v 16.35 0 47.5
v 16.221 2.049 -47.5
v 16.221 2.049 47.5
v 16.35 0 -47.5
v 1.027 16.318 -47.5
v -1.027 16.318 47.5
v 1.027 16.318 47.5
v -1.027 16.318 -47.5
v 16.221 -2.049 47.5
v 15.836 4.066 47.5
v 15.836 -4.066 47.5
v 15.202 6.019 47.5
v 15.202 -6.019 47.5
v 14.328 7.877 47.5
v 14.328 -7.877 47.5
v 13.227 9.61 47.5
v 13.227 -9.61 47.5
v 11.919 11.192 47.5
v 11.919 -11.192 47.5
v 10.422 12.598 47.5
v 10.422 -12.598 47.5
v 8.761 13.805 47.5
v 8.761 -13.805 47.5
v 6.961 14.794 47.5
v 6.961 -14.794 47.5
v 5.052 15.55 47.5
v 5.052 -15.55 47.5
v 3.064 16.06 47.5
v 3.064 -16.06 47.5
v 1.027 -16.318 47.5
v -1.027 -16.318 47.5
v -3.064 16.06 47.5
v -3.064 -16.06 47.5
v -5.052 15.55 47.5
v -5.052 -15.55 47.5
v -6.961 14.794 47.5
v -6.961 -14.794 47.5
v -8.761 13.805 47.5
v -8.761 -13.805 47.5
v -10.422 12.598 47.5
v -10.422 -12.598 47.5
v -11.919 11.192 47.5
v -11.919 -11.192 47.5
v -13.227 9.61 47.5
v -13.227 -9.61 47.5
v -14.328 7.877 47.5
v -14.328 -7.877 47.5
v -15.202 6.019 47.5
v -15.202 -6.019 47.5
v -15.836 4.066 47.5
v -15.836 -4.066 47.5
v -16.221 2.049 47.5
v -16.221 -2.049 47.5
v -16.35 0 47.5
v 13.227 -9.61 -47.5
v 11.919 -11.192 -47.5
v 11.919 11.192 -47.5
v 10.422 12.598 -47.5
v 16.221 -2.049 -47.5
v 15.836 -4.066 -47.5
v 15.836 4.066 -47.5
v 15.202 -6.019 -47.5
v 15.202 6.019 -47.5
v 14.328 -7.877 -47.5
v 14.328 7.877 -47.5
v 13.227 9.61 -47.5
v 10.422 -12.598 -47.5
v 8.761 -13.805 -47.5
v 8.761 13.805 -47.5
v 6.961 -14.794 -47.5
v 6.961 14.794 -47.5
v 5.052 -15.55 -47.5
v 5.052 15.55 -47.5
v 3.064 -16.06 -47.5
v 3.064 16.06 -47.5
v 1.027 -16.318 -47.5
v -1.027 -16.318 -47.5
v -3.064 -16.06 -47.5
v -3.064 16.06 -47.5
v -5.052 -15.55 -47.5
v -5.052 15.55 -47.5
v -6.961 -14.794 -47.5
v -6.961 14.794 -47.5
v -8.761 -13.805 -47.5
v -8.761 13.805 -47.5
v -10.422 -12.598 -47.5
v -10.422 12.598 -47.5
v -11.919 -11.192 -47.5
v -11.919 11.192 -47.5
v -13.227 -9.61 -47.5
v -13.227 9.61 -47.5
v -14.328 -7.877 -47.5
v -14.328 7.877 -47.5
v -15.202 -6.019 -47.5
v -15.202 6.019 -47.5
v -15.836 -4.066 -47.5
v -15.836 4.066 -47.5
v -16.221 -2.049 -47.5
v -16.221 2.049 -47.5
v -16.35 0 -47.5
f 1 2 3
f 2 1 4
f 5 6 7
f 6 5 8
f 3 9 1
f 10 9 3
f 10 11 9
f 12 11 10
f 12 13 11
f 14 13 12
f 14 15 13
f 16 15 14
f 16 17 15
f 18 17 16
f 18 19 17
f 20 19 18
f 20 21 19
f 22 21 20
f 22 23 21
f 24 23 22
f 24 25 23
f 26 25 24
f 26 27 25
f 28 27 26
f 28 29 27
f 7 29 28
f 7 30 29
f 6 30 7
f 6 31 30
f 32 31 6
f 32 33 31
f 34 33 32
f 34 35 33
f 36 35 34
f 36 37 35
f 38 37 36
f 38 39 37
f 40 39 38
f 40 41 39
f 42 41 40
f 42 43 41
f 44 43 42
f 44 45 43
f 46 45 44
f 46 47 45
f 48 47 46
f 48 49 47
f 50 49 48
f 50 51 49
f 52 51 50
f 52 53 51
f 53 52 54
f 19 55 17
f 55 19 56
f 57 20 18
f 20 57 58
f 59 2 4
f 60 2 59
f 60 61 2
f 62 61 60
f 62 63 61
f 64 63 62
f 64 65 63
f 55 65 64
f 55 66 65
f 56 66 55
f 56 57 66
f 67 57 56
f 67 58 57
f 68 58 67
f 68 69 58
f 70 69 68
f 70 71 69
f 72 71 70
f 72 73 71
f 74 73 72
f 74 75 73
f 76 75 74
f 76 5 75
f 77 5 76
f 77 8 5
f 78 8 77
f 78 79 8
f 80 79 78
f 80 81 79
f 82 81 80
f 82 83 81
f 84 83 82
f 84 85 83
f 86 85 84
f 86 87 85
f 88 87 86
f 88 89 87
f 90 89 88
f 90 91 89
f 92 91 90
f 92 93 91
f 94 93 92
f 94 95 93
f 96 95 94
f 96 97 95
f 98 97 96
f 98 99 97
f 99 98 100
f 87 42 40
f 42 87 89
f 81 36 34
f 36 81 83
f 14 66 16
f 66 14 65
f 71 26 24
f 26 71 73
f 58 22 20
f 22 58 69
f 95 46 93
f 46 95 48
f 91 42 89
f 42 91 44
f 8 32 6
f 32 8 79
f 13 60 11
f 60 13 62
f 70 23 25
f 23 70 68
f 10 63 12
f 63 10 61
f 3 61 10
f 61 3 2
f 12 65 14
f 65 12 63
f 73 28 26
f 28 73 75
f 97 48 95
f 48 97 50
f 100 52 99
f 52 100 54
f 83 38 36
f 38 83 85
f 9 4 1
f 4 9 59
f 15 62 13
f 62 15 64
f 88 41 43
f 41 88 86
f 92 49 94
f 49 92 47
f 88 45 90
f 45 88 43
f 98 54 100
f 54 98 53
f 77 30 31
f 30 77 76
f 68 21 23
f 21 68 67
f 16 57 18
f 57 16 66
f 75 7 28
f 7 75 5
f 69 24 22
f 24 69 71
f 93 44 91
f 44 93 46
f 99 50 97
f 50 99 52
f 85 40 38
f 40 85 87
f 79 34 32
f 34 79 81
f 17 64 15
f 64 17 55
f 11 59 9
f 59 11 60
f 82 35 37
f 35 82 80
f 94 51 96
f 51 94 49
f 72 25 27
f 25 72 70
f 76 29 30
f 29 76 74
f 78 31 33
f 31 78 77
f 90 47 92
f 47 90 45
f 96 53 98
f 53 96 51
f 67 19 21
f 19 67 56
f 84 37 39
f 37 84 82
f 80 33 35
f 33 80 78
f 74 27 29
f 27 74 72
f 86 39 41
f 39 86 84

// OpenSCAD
$fn = 50;


difference() {
	union() {
		translate(v = [0, 0, -47.5000000000]) {
			cylinder(h = 95, r = 16.3500000000);
		}
	}
	union() {
		translate(v = [0, 0, -100.0000000000]) {
			cylinder(h = 200, r = 0);
		}
	}
}
